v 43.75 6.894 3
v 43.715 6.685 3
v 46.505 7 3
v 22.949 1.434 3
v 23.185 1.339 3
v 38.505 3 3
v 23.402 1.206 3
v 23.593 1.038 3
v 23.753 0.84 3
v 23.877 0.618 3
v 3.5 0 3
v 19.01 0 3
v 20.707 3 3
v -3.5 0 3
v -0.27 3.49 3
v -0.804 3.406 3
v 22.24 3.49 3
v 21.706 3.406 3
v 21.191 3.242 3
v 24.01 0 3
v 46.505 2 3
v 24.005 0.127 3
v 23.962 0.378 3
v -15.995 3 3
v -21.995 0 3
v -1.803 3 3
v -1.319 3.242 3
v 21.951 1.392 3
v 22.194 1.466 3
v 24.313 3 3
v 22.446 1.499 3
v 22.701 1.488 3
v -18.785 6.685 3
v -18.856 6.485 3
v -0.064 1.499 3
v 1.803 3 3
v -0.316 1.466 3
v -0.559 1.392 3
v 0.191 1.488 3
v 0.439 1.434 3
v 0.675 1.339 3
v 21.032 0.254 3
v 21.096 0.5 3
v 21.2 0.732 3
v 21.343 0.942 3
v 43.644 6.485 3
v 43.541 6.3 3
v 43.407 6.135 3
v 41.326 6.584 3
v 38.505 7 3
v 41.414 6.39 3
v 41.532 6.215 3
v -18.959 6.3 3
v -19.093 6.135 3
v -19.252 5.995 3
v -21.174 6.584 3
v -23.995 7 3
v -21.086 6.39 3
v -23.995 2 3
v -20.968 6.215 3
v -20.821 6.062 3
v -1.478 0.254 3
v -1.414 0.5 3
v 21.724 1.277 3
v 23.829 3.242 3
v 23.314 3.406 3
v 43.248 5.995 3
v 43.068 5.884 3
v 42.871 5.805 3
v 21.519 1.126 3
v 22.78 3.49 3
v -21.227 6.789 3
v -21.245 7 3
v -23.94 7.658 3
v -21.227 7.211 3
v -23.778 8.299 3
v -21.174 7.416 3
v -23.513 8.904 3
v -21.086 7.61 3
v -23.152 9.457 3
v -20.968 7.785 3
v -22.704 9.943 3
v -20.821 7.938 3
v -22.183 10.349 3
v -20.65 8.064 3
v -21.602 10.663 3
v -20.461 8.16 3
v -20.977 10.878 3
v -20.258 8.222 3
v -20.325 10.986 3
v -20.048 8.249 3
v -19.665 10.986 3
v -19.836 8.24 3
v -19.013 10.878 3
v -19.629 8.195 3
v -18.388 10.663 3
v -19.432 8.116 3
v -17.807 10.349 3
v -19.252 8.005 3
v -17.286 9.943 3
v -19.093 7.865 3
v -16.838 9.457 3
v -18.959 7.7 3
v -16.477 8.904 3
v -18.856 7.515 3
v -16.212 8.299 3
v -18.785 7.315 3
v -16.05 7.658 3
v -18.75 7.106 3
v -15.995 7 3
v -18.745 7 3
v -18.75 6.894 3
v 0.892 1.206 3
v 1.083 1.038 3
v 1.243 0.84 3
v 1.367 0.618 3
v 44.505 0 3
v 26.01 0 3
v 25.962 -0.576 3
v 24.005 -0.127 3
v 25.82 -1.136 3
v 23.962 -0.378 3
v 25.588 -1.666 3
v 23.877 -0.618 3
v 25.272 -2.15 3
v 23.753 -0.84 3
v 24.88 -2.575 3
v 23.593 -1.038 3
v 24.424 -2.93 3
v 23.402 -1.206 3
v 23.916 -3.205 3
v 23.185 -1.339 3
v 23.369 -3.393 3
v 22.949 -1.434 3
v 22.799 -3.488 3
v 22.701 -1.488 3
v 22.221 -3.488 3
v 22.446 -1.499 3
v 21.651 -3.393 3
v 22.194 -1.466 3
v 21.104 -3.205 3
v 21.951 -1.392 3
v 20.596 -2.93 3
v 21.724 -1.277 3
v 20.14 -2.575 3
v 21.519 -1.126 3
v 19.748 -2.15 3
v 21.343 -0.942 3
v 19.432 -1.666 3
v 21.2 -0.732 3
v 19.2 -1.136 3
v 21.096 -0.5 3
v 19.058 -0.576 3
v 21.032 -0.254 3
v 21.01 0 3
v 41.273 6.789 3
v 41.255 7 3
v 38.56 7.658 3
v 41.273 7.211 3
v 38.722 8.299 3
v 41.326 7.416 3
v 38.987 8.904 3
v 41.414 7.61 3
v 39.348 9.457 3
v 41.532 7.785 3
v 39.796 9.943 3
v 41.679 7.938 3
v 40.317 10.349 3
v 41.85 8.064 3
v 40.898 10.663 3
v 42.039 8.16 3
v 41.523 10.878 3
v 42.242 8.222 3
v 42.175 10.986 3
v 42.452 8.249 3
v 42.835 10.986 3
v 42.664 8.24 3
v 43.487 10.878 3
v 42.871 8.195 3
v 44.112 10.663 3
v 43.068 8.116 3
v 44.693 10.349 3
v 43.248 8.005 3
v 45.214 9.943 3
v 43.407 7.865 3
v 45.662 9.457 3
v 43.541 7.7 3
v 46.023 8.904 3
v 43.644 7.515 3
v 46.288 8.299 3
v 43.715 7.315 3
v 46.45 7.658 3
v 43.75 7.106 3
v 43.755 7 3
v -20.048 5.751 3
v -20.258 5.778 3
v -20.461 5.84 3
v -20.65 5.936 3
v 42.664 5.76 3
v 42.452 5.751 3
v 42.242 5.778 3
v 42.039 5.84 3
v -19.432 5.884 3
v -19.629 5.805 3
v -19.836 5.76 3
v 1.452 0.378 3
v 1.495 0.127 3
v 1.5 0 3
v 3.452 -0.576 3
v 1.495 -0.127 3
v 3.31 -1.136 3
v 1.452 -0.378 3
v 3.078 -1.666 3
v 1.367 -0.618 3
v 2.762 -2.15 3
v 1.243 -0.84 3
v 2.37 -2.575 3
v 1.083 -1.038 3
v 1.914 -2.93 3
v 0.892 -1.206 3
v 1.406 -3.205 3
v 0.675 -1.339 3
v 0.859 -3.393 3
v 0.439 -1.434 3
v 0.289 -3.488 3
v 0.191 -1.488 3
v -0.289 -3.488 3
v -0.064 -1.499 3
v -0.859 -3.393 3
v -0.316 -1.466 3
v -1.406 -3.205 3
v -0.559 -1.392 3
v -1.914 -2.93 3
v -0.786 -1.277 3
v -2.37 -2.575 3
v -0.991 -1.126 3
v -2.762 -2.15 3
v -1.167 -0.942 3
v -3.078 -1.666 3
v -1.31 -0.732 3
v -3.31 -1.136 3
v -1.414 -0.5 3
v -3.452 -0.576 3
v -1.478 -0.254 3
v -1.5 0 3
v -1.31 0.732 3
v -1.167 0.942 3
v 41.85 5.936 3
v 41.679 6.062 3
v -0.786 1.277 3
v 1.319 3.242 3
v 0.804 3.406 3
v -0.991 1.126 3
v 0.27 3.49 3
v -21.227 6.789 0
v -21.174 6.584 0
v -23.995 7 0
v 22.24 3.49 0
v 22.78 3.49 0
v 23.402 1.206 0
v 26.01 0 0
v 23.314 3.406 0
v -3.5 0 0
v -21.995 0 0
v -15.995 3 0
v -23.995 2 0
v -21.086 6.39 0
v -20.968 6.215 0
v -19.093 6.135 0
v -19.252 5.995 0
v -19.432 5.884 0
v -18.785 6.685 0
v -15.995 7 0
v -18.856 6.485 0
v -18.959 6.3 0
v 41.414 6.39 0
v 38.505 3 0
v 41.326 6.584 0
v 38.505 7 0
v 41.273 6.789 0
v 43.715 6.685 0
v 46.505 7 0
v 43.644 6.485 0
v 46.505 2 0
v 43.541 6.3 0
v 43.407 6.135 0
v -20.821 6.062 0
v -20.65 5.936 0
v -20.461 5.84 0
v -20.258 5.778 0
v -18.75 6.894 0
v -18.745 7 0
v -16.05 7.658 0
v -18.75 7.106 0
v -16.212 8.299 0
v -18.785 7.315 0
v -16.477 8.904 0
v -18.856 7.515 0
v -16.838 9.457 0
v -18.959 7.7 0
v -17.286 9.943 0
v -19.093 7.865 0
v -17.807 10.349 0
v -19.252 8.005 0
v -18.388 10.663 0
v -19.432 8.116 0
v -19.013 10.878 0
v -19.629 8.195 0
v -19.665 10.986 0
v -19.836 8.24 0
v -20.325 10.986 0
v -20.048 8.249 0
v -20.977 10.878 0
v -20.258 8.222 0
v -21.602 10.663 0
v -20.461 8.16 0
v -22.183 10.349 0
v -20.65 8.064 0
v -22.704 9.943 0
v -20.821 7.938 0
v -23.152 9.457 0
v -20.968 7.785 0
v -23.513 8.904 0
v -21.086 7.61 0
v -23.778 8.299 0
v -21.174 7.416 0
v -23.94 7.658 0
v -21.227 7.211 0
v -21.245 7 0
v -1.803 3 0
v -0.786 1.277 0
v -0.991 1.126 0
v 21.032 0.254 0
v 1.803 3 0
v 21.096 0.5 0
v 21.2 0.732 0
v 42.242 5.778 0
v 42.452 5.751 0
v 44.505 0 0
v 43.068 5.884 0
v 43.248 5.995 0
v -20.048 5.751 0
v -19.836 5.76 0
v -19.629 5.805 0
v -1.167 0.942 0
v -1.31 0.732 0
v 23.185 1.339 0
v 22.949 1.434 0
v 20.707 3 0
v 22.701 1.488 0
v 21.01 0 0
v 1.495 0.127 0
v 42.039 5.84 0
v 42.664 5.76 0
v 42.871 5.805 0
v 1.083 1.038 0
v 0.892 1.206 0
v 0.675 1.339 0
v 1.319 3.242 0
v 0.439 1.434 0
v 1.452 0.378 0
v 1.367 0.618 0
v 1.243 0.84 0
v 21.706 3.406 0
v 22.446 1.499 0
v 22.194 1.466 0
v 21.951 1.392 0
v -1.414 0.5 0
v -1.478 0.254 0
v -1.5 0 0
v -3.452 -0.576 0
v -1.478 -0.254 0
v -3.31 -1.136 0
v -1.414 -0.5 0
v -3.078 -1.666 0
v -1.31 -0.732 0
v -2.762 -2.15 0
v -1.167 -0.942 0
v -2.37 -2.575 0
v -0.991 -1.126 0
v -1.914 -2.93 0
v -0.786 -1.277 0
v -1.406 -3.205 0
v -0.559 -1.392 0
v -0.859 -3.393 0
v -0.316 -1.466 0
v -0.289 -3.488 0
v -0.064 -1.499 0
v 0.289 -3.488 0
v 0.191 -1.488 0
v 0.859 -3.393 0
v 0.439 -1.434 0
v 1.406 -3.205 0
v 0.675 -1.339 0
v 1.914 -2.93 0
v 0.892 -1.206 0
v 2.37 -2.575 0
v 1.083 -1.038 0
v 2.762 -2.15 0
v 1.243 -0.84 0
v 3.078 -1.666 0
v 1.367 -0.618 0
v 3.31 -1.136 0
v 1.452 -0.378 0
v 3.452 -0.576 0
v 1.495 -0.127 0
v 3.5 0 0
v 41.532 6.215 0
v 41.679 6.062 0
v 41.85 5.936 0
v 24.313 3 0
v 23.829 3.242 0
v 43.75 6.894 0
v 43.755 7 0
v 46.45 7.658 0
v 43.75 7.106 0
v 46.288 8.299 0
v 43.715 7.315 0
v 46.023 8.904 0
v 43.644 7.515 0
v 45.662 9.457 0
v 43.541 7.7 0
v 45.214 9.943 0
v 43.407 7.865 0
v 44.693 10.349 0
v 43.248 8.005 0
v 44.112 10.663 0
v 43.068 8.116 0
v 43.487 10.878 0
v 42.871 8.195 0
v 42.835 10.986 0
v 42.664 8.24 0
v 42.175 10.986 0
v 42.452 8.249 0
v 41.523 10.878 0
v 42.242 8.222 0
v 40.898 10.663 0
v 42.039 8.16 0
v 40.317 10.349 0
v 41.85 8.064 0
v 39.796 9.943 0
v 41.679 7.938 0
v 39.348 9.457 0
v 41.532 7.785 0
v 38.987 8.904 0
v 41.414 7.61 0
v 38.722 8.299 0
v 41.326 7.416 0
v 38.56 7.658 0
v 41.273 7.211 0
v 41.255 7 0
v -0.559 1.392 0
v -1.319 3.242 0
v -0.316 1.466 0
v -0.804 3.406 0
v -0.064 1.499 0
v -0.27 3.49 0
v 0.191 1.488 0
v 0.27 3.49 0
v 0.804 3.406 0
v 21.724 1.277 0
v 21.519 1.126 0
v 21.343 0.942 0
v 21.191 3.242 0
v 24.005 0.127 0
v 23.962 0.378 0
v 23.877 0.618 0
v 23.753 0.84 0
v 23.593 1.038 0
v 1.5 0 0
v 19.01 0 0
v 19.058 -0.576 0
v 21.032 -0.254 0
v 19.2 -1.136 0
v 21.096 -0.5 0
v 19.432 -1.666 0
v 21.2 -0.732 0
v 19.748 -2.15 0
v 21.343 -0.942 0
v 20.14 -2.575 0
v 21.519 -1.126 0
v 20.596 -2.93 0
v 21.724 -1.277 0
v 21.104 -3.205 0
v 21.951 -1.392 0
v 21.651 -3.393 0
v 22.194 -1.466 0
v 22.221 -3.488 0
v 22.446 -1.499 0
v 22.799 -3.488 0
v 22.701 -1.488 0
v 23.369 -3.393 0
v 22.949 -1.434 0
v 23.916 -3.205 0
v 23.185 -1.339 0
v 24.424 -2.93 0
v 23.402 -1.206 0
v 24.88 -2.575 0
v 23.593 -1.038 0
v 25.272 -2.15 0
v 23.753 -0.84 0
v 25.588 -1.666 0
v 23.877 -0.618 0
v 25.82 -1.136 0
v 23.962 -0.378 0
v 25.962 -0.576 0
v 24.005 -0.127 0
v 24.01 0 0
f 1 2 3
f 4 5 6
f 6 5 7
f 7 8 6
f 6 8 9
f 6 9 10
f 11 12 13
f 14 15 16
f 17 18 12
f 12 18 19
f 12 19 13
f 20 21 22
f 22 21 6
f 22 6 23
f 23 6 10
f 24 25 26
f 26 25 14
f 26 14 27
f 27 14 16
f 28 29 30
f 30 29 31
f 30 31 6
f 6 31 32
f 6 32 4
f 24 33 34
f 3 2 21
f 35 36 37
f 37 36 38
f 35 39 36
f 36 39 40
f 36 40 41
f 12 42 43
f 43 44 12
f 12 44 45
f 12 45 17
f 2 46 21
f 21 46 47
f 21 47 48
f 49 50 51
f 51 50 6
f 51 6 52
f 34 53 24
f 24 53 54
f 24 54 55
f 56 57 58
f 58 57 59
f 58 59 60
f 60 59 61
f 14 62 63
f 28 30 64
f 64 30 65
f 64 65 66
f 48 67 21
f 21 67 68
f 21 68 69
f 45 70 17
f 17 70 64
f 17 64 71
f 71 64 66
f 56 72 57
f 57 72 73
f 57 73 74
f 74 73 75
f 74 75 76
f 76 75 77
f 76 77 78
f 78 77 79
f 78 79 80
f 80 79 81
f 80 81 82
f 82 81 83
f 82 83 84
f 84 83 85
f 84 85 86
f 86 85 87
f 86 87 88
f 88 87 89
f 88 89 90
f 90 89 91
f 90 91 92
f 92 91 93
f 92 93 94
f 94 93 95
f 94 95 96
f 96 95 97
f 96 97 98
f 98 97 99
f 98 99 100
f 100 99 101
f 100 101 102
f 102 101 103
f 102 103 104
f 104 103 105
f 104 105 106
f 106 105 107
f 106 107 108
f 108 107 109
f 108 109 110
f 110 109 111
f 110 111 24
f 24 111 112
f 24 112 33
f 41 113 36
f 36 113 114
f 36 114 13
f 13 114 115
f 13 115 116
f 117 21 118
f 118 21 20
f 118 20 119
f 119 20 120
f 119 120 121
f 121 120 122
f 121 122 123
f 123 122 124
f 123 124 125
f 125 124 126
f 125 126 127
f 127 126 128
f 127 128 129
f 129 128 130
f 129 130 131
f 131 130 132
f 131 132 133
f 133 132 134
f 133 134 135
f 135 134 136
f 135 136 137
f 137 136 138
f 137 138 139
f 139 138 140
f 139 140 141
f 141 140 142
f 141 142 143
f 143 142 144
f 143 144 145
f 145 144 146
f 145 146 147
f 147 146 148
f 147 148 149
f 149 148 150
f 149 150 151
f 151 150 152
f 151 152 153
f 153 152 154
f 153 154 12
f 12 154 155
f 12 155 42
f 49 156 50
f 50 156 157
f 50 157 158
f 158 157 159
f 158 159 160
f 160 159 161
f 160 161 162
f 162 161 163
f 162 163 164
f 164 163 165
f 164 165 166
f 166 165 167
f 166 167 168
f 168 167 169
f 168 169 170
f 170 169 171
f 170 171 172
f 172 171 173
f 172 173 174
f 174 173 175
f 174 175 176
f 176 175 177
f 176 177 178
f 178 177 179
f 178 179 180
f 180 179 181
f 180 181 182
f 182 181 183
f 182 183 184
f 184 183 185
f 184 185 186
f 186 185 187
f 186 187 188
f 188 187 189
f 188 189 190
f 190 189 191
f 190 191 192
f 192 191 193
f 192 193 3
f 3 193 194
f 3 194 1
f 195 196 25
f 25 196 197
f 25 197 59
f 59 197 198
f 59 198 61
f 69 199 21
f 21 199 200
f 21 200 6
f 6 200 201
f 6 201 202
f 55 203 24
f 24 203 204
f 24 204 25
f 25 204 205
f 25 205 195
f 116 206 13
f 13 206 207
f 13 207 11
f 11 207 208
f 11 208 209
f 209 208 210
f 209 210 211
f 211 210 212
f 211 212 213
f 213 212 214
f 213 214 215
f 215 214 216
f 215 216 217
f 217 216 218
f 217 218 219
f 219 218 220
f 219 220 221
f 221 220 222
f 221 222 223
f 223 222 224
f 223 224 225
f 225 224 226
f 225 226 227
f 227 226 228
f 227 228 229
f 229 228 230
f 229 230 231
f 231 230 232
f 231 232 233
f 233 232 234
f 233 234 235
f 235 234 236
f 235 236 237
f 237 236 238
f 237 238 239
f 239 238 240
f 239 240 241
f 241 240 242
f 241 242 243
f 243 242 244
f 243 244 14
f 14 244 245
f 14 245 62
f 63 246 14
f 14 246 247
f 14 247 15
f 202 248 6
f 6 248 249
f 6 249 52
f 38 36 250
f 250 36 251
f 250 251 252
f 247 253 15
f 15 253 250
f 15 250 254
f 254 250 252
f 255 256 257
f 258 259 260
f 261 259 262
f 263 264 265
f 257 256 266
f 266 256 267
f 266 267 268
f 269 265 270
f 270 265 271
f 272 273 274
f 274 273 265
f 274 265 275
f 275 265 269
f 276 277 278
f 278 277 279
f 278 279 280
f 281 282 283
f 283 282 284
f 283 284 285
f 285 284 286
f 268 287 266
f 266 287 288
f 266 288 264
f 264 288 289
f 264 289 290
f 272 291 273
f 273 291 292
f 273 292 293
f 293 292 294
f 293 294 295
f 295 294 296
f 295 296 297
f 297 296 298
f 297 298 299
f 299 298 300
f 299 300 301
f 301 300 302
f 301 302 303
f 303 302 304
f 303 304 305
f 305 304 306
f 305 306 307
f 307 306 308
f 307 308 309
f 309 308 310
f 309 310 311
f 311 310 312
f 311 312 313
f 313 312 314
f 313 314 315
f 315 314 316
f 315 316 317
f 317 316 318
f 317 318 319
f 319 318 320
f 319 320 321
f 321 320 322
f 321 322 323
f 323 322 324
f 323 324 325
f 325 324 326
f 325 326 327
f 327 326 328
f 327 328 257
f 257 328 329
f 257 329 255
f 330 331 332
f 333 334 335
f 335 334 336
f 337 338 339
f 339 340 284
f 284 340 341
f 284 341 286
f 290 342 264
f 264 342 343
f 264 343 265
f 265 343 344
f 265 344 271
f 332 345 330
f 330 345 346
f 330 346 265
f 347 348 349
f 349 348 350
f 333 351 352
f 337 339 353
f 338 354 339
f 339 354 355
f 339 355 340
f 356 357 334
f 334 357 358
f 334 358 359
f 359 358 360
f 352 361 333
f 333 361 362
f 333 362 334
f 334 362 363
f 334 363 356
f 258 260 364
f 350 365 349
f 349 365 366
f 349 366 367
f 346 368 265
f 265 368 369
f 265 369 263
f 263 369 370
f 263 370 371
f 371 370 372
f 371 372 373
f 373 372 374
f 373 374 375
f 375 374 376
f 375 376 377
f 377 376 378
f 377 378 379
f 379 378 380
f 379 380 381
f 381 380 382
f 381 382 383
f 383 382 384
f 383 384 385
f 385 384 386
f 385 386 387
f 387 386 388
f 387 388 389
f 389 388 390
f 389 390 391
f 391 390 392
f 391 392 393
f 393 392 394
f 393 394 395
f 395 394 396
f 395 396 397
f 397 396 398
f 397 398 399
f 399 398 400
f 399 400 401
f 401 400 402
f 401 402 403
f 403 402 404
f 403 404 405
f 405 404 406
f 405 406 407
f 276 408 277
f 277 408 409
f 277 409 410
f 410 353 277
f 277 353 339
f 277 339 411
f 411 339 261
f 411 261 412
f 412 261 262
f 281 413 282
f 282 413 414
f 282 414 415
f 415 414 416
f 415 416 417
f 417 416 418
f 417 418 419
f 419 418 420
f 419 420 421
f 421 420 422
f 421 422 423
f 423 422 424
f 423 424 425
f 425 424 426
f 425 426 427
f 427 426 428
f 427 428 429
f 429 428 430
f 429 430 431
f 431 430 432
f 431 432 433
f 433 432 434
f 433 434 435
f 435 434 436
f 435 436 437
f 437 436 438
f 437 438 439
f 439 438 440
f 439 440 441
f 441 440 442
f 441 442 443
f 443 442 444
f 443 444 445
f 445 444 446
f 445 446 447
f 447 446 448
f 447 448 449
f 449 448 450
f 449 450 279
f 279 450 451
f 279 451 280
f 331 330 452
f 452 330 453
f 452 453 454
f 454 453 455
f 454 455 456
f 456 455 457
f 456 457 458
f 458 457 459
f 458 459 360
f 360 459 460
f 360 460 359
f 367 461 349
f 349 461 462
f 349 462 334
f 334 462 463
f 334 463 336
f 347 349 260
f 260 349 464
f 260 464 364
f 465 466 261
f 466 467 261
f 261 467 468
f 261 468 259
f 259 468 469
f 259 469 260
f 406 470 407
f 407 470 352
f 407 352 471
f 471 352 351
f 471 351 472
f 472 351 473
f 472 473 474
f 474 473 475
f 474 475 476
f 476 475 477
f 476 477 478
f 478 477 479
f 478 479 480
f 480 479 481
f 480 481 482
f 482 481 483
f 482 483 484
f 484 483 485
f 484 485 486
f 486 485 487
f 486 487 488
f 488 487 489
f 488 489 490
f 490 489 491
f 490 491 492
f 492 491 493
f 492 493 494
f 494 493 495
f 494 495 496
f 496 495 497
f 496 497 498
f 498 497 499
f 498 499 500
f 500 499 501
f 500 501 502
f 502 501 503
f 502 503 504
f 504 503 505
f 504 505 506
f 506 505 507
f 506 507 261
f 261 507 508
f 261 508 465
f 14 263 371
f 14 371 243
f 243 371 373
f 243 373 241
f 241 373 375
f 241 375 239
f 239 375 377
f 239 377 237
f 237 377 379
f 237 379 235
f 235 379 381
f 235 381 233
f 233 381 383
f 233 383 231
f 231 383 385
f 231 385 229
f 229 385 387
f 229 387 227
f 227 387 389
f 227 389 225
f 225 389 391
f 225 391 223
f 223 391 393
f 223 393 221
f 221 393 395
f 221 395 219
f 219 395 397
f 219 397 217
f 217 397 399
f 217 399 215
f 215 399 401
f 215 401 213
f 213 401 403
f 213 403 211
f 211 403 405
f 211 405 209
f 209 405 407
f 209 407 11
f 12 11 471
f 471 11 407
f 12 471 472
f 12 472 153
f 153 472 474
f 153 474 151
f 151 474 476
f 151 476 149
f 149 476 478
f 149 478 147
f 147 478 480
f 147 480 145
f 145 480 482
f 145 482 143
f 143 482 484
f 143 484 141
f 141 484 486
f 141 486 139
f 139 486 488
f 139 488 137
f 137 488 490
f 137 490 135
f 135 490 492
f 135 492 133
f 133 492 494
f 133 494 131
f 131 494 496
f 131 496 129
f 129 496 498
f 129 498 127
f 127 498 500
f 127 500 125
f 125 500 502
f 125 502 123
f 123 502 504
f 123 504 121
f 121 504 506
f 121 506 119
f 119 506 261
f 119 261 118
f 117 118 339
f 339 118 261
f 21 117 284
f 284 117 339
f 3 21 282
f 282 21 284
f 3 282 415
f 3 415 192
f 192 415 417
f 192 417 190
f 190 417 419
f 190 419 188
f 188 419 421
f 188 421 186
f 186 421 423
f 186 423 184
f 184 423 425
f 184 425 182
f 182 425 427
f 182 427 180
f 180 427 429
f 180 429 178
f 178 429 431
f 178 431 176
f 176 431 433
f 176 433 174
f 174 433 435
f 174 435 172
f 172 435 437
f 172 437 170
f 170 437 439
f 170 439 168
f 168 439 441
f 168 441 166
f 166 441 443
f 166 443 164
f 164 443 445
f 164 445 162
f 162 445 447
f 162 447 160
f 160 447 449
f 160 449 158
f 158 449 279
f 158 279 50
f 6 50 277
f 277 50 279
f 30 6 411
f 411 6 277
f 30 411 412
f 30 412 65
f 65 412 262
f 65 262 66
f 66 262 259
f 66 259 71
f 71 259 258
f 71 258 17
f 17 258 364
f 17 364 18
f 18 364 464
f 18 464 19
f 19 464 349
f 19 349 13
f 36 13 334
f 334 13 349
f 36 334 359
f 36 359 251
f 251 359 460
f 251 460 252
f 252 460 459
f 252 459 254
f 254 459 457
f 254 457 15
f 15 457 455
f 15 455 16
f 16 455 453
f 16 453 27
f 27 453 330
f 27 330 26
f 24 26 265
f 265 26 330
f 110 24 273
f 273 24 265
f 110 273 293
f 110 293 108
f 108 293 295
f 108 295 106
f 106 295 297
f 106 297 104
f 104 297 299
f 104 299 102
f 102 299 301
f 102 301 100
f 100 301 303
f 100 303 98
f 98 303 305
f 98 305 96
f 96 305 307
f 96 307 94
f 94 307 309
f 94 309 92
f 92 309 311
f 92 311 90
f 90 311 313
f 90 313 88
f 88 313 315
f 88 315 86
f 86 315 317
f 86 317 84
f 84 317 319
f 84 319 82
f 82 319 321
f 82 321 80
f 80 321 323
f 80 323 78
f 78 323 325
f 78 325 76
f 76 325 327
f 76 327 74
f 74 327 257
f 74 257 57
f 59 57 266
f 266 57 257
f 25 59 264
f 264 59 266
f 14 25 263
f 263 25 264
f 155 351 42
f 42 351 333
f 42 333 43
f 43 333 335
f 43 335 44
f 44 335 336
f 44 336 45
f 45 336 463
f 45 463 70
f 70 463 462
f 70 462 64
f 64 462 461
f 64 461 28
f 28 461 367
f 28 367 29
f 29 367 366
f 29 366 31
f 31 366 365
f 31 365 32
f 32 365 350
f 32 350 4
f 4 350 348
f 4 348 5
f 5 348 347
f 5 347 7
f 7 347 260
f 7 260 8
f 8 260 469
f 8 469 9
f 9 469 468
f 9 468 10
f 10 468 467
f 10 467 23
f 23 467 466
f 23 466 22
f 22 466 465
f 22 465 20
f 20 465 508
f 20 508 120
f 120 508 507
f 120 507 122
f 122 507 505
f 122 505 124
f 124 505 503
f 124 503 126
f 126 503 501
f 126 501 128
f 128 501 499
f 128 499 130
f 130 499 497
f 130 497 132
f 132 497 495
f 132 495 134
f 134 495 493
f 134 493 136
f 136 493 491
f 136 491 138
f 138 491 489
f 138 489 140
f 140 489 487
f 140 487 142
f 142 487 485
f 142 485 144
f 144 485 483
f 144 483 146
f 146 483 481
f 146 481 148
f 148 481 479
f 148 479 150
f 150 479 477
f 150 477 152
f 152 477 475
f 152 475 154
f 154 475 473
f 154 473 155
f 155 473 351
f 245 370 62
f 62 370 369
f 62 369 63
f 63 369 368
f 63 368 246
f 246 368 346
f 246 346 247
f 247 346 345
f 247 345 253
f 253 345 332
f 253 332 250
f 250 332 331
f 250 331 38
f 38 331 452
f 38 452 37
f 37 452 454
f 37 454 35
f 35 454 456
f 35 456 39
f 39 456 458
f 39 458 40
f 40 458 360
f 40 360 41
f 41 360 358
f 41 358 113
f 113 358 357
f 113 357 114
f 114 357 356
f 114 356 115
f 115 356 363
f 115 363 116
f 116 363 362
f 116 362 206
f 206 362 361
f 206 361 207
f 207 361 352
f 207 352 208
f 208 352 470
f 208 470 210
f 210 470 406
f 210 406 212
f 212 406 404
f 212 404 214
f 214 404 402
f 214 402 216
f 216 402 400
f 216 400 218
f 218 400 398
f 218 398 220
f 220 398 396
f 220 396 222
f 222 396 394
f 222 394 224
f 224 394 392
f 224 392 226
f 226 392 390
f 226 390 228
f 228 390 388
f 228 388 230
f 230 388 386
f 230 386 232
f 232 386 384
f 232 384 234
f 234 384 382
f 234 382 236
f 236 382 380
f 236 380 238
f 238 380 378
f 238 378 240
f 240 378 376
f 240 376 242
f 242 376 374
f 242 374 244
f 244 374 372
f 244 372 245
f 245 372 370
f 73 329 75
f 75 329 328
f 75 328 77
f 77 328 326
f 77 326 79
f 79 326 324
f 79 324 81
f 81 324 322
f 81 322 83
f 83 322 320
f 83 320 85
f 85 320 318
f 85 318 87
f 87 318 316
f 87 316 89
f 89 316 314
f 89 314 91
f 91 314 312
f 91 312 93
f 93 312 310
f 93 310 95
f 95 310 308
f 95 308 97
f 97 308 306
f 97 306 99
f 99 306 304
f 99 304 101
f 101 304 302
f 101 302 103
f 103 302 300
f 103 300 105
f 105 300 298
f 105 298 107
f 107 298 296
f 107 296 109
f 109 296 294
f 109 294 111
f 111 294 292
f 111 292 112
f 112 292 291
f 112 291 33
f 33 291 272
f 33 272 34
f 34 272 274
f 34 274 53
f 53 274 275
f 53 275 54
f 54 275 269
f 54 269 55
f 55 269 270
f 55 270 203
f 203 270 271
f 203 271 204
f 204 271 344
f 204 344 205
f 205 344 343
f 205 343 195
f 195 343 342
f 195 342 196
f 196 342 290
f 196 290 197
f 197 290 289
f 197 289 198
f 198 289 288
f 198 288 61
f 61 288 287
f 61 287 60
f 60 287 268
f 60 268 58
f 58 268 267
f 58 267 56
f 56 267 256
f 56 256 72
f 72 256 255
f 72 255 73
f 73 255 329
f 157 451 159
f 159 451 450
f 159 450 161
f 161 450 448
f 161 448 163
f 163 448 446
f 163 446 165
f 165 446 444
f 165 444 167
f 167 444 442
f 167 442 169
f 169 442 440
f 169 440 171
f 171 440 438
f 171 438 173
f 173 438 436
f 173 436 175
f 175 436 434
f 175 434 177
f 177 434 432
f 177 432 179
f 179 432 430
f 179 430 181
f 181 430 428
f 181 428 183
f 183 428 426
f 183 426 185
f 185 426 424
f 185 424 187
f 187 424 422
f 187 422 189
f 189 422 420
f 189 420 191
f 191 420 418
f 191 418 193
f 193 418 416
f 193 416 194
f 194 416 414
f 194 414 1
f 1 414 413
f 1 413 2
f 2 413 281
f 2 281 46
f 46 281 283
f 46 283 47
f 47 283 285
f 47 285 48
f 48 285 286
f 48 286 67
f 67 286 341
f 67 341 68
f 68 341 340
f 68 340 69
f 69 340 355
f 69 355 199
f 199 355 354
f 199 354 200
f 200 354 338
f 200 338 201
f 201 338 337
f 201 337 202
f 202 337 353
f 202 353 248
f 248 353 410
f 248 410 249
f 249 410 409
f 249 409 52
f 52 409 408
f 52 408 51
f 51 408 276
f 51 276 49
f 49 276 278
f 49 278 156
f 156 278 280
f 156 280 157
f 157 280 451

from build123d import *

# Parameters (mm, degrees)
SKETCH_1_R      = 1.5
SKETCH_1_R_2    = 1.25
EXTRUDE_2_DEPTH = 3


with BuildPart() as part:
    # 草图1 → 凸台-拉伸2 (new body)
    with BuildSketch(Plane.XY):
        with BuildLine():
            Line((3.5, 0), (19.01, 0))
            ThreePointArc((19.01, 0), (22.51, -3.5), (26.01, 0))
            Line((26.01, 0), (44.505, 0))
            Line((44.505, 0), (46.505, 2))
            Line((46.505, 2), (46.505, 7))
            ThreePointArc((46.505, 7), (42.505, 11), (38.505, 7))
            Line((38.505, 7), (38.505, 3))
            Line((38.505, 3), (24.312775638, 3))
            ThreePointArc((24.312775638, 3), (22.51, 3.5), (20.707224362, 3))
            Line((20.707224362, 3), (1.802775638, 3))
            ThreePointArc((1.802775638, 3), (0, 3.5), (-1.802775638, 3))
            Line((-1.802775638, 3), (-15.995, 3))
            Line((-15.995, 3), (-15.995, 7))
            ThreePointArc((-15.995, 7), (-19.995, 11), (-23.995, 7))
            Line((-23.995, 7), (-23.995, 2))
            Line((-23.995, 2), (-21.995, 0))
            Line((-21.995, 0), (-3.5, 0))
            ThreePointArc((-3.5, 0), (0, -3.5), (3.5, 0))
        make_face()
        with Locations((22.51, 0)):
            Circle(SKETCH_1_R, mode=Mode.SUBTRACT)
        Circle(SKETCH_1_R, mode=Mode.SUBTRACT)
        with Locations((-19.995, 7)):
            Circle(SKETCH_1_R_2, mode=Mode.SUBTRACT)
        with Locations((42.505, 7)):
            Circle(SKETCH_1_R_2, mode=Mode.SUBTRACT)
    extrude(amount=EXTRUDE_2_DEPTH)


solid = part.part
